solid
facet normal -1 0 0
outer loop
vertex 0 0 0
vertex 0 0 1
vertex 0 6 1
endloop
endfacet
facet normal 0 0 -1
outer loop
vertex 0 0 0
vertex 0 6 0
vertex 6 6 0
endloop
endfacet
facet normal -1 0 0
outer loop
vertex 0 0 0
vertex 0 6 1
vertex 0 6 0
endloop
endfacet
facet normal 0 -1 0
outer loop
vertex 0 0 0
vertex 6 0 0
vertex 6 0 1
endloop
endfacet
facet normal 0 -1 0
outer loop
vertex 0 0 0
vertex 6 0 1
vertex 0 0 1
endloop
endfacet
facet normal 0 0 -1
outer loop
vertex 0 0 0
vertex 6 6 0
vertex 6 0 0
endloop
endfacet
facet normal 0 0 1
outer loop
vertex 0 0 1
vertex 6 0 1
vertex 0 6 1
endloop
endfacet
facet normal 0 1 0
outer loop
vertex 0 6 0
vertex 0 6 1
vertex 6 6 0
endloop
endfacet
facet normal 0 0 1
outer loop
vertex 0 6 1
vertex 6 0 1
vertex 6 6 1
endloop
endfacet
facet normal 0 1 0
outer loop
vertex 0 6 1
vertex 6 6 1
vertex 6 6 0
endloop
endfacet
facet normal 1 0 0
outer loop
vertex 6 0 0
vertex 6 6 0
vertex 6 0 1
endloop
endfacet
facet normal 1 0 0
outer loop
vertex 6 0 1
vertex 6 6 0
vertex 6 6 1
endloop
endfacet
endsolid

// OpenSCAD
/* Warning, this is a very basic generator with a lot of approximation 
input data : [VQFN, 4NX, 6x6x1.0mm, 28, , C, C04-00400C]
generated by com.zoubworld.electronics.cad.model3d.Basic
Date : Sun Feb 15 10:50:48 CET 2026
*/

//body
color("black")
translate([0,0,0])
cube([6.0,6.0,1.0], center=false);
